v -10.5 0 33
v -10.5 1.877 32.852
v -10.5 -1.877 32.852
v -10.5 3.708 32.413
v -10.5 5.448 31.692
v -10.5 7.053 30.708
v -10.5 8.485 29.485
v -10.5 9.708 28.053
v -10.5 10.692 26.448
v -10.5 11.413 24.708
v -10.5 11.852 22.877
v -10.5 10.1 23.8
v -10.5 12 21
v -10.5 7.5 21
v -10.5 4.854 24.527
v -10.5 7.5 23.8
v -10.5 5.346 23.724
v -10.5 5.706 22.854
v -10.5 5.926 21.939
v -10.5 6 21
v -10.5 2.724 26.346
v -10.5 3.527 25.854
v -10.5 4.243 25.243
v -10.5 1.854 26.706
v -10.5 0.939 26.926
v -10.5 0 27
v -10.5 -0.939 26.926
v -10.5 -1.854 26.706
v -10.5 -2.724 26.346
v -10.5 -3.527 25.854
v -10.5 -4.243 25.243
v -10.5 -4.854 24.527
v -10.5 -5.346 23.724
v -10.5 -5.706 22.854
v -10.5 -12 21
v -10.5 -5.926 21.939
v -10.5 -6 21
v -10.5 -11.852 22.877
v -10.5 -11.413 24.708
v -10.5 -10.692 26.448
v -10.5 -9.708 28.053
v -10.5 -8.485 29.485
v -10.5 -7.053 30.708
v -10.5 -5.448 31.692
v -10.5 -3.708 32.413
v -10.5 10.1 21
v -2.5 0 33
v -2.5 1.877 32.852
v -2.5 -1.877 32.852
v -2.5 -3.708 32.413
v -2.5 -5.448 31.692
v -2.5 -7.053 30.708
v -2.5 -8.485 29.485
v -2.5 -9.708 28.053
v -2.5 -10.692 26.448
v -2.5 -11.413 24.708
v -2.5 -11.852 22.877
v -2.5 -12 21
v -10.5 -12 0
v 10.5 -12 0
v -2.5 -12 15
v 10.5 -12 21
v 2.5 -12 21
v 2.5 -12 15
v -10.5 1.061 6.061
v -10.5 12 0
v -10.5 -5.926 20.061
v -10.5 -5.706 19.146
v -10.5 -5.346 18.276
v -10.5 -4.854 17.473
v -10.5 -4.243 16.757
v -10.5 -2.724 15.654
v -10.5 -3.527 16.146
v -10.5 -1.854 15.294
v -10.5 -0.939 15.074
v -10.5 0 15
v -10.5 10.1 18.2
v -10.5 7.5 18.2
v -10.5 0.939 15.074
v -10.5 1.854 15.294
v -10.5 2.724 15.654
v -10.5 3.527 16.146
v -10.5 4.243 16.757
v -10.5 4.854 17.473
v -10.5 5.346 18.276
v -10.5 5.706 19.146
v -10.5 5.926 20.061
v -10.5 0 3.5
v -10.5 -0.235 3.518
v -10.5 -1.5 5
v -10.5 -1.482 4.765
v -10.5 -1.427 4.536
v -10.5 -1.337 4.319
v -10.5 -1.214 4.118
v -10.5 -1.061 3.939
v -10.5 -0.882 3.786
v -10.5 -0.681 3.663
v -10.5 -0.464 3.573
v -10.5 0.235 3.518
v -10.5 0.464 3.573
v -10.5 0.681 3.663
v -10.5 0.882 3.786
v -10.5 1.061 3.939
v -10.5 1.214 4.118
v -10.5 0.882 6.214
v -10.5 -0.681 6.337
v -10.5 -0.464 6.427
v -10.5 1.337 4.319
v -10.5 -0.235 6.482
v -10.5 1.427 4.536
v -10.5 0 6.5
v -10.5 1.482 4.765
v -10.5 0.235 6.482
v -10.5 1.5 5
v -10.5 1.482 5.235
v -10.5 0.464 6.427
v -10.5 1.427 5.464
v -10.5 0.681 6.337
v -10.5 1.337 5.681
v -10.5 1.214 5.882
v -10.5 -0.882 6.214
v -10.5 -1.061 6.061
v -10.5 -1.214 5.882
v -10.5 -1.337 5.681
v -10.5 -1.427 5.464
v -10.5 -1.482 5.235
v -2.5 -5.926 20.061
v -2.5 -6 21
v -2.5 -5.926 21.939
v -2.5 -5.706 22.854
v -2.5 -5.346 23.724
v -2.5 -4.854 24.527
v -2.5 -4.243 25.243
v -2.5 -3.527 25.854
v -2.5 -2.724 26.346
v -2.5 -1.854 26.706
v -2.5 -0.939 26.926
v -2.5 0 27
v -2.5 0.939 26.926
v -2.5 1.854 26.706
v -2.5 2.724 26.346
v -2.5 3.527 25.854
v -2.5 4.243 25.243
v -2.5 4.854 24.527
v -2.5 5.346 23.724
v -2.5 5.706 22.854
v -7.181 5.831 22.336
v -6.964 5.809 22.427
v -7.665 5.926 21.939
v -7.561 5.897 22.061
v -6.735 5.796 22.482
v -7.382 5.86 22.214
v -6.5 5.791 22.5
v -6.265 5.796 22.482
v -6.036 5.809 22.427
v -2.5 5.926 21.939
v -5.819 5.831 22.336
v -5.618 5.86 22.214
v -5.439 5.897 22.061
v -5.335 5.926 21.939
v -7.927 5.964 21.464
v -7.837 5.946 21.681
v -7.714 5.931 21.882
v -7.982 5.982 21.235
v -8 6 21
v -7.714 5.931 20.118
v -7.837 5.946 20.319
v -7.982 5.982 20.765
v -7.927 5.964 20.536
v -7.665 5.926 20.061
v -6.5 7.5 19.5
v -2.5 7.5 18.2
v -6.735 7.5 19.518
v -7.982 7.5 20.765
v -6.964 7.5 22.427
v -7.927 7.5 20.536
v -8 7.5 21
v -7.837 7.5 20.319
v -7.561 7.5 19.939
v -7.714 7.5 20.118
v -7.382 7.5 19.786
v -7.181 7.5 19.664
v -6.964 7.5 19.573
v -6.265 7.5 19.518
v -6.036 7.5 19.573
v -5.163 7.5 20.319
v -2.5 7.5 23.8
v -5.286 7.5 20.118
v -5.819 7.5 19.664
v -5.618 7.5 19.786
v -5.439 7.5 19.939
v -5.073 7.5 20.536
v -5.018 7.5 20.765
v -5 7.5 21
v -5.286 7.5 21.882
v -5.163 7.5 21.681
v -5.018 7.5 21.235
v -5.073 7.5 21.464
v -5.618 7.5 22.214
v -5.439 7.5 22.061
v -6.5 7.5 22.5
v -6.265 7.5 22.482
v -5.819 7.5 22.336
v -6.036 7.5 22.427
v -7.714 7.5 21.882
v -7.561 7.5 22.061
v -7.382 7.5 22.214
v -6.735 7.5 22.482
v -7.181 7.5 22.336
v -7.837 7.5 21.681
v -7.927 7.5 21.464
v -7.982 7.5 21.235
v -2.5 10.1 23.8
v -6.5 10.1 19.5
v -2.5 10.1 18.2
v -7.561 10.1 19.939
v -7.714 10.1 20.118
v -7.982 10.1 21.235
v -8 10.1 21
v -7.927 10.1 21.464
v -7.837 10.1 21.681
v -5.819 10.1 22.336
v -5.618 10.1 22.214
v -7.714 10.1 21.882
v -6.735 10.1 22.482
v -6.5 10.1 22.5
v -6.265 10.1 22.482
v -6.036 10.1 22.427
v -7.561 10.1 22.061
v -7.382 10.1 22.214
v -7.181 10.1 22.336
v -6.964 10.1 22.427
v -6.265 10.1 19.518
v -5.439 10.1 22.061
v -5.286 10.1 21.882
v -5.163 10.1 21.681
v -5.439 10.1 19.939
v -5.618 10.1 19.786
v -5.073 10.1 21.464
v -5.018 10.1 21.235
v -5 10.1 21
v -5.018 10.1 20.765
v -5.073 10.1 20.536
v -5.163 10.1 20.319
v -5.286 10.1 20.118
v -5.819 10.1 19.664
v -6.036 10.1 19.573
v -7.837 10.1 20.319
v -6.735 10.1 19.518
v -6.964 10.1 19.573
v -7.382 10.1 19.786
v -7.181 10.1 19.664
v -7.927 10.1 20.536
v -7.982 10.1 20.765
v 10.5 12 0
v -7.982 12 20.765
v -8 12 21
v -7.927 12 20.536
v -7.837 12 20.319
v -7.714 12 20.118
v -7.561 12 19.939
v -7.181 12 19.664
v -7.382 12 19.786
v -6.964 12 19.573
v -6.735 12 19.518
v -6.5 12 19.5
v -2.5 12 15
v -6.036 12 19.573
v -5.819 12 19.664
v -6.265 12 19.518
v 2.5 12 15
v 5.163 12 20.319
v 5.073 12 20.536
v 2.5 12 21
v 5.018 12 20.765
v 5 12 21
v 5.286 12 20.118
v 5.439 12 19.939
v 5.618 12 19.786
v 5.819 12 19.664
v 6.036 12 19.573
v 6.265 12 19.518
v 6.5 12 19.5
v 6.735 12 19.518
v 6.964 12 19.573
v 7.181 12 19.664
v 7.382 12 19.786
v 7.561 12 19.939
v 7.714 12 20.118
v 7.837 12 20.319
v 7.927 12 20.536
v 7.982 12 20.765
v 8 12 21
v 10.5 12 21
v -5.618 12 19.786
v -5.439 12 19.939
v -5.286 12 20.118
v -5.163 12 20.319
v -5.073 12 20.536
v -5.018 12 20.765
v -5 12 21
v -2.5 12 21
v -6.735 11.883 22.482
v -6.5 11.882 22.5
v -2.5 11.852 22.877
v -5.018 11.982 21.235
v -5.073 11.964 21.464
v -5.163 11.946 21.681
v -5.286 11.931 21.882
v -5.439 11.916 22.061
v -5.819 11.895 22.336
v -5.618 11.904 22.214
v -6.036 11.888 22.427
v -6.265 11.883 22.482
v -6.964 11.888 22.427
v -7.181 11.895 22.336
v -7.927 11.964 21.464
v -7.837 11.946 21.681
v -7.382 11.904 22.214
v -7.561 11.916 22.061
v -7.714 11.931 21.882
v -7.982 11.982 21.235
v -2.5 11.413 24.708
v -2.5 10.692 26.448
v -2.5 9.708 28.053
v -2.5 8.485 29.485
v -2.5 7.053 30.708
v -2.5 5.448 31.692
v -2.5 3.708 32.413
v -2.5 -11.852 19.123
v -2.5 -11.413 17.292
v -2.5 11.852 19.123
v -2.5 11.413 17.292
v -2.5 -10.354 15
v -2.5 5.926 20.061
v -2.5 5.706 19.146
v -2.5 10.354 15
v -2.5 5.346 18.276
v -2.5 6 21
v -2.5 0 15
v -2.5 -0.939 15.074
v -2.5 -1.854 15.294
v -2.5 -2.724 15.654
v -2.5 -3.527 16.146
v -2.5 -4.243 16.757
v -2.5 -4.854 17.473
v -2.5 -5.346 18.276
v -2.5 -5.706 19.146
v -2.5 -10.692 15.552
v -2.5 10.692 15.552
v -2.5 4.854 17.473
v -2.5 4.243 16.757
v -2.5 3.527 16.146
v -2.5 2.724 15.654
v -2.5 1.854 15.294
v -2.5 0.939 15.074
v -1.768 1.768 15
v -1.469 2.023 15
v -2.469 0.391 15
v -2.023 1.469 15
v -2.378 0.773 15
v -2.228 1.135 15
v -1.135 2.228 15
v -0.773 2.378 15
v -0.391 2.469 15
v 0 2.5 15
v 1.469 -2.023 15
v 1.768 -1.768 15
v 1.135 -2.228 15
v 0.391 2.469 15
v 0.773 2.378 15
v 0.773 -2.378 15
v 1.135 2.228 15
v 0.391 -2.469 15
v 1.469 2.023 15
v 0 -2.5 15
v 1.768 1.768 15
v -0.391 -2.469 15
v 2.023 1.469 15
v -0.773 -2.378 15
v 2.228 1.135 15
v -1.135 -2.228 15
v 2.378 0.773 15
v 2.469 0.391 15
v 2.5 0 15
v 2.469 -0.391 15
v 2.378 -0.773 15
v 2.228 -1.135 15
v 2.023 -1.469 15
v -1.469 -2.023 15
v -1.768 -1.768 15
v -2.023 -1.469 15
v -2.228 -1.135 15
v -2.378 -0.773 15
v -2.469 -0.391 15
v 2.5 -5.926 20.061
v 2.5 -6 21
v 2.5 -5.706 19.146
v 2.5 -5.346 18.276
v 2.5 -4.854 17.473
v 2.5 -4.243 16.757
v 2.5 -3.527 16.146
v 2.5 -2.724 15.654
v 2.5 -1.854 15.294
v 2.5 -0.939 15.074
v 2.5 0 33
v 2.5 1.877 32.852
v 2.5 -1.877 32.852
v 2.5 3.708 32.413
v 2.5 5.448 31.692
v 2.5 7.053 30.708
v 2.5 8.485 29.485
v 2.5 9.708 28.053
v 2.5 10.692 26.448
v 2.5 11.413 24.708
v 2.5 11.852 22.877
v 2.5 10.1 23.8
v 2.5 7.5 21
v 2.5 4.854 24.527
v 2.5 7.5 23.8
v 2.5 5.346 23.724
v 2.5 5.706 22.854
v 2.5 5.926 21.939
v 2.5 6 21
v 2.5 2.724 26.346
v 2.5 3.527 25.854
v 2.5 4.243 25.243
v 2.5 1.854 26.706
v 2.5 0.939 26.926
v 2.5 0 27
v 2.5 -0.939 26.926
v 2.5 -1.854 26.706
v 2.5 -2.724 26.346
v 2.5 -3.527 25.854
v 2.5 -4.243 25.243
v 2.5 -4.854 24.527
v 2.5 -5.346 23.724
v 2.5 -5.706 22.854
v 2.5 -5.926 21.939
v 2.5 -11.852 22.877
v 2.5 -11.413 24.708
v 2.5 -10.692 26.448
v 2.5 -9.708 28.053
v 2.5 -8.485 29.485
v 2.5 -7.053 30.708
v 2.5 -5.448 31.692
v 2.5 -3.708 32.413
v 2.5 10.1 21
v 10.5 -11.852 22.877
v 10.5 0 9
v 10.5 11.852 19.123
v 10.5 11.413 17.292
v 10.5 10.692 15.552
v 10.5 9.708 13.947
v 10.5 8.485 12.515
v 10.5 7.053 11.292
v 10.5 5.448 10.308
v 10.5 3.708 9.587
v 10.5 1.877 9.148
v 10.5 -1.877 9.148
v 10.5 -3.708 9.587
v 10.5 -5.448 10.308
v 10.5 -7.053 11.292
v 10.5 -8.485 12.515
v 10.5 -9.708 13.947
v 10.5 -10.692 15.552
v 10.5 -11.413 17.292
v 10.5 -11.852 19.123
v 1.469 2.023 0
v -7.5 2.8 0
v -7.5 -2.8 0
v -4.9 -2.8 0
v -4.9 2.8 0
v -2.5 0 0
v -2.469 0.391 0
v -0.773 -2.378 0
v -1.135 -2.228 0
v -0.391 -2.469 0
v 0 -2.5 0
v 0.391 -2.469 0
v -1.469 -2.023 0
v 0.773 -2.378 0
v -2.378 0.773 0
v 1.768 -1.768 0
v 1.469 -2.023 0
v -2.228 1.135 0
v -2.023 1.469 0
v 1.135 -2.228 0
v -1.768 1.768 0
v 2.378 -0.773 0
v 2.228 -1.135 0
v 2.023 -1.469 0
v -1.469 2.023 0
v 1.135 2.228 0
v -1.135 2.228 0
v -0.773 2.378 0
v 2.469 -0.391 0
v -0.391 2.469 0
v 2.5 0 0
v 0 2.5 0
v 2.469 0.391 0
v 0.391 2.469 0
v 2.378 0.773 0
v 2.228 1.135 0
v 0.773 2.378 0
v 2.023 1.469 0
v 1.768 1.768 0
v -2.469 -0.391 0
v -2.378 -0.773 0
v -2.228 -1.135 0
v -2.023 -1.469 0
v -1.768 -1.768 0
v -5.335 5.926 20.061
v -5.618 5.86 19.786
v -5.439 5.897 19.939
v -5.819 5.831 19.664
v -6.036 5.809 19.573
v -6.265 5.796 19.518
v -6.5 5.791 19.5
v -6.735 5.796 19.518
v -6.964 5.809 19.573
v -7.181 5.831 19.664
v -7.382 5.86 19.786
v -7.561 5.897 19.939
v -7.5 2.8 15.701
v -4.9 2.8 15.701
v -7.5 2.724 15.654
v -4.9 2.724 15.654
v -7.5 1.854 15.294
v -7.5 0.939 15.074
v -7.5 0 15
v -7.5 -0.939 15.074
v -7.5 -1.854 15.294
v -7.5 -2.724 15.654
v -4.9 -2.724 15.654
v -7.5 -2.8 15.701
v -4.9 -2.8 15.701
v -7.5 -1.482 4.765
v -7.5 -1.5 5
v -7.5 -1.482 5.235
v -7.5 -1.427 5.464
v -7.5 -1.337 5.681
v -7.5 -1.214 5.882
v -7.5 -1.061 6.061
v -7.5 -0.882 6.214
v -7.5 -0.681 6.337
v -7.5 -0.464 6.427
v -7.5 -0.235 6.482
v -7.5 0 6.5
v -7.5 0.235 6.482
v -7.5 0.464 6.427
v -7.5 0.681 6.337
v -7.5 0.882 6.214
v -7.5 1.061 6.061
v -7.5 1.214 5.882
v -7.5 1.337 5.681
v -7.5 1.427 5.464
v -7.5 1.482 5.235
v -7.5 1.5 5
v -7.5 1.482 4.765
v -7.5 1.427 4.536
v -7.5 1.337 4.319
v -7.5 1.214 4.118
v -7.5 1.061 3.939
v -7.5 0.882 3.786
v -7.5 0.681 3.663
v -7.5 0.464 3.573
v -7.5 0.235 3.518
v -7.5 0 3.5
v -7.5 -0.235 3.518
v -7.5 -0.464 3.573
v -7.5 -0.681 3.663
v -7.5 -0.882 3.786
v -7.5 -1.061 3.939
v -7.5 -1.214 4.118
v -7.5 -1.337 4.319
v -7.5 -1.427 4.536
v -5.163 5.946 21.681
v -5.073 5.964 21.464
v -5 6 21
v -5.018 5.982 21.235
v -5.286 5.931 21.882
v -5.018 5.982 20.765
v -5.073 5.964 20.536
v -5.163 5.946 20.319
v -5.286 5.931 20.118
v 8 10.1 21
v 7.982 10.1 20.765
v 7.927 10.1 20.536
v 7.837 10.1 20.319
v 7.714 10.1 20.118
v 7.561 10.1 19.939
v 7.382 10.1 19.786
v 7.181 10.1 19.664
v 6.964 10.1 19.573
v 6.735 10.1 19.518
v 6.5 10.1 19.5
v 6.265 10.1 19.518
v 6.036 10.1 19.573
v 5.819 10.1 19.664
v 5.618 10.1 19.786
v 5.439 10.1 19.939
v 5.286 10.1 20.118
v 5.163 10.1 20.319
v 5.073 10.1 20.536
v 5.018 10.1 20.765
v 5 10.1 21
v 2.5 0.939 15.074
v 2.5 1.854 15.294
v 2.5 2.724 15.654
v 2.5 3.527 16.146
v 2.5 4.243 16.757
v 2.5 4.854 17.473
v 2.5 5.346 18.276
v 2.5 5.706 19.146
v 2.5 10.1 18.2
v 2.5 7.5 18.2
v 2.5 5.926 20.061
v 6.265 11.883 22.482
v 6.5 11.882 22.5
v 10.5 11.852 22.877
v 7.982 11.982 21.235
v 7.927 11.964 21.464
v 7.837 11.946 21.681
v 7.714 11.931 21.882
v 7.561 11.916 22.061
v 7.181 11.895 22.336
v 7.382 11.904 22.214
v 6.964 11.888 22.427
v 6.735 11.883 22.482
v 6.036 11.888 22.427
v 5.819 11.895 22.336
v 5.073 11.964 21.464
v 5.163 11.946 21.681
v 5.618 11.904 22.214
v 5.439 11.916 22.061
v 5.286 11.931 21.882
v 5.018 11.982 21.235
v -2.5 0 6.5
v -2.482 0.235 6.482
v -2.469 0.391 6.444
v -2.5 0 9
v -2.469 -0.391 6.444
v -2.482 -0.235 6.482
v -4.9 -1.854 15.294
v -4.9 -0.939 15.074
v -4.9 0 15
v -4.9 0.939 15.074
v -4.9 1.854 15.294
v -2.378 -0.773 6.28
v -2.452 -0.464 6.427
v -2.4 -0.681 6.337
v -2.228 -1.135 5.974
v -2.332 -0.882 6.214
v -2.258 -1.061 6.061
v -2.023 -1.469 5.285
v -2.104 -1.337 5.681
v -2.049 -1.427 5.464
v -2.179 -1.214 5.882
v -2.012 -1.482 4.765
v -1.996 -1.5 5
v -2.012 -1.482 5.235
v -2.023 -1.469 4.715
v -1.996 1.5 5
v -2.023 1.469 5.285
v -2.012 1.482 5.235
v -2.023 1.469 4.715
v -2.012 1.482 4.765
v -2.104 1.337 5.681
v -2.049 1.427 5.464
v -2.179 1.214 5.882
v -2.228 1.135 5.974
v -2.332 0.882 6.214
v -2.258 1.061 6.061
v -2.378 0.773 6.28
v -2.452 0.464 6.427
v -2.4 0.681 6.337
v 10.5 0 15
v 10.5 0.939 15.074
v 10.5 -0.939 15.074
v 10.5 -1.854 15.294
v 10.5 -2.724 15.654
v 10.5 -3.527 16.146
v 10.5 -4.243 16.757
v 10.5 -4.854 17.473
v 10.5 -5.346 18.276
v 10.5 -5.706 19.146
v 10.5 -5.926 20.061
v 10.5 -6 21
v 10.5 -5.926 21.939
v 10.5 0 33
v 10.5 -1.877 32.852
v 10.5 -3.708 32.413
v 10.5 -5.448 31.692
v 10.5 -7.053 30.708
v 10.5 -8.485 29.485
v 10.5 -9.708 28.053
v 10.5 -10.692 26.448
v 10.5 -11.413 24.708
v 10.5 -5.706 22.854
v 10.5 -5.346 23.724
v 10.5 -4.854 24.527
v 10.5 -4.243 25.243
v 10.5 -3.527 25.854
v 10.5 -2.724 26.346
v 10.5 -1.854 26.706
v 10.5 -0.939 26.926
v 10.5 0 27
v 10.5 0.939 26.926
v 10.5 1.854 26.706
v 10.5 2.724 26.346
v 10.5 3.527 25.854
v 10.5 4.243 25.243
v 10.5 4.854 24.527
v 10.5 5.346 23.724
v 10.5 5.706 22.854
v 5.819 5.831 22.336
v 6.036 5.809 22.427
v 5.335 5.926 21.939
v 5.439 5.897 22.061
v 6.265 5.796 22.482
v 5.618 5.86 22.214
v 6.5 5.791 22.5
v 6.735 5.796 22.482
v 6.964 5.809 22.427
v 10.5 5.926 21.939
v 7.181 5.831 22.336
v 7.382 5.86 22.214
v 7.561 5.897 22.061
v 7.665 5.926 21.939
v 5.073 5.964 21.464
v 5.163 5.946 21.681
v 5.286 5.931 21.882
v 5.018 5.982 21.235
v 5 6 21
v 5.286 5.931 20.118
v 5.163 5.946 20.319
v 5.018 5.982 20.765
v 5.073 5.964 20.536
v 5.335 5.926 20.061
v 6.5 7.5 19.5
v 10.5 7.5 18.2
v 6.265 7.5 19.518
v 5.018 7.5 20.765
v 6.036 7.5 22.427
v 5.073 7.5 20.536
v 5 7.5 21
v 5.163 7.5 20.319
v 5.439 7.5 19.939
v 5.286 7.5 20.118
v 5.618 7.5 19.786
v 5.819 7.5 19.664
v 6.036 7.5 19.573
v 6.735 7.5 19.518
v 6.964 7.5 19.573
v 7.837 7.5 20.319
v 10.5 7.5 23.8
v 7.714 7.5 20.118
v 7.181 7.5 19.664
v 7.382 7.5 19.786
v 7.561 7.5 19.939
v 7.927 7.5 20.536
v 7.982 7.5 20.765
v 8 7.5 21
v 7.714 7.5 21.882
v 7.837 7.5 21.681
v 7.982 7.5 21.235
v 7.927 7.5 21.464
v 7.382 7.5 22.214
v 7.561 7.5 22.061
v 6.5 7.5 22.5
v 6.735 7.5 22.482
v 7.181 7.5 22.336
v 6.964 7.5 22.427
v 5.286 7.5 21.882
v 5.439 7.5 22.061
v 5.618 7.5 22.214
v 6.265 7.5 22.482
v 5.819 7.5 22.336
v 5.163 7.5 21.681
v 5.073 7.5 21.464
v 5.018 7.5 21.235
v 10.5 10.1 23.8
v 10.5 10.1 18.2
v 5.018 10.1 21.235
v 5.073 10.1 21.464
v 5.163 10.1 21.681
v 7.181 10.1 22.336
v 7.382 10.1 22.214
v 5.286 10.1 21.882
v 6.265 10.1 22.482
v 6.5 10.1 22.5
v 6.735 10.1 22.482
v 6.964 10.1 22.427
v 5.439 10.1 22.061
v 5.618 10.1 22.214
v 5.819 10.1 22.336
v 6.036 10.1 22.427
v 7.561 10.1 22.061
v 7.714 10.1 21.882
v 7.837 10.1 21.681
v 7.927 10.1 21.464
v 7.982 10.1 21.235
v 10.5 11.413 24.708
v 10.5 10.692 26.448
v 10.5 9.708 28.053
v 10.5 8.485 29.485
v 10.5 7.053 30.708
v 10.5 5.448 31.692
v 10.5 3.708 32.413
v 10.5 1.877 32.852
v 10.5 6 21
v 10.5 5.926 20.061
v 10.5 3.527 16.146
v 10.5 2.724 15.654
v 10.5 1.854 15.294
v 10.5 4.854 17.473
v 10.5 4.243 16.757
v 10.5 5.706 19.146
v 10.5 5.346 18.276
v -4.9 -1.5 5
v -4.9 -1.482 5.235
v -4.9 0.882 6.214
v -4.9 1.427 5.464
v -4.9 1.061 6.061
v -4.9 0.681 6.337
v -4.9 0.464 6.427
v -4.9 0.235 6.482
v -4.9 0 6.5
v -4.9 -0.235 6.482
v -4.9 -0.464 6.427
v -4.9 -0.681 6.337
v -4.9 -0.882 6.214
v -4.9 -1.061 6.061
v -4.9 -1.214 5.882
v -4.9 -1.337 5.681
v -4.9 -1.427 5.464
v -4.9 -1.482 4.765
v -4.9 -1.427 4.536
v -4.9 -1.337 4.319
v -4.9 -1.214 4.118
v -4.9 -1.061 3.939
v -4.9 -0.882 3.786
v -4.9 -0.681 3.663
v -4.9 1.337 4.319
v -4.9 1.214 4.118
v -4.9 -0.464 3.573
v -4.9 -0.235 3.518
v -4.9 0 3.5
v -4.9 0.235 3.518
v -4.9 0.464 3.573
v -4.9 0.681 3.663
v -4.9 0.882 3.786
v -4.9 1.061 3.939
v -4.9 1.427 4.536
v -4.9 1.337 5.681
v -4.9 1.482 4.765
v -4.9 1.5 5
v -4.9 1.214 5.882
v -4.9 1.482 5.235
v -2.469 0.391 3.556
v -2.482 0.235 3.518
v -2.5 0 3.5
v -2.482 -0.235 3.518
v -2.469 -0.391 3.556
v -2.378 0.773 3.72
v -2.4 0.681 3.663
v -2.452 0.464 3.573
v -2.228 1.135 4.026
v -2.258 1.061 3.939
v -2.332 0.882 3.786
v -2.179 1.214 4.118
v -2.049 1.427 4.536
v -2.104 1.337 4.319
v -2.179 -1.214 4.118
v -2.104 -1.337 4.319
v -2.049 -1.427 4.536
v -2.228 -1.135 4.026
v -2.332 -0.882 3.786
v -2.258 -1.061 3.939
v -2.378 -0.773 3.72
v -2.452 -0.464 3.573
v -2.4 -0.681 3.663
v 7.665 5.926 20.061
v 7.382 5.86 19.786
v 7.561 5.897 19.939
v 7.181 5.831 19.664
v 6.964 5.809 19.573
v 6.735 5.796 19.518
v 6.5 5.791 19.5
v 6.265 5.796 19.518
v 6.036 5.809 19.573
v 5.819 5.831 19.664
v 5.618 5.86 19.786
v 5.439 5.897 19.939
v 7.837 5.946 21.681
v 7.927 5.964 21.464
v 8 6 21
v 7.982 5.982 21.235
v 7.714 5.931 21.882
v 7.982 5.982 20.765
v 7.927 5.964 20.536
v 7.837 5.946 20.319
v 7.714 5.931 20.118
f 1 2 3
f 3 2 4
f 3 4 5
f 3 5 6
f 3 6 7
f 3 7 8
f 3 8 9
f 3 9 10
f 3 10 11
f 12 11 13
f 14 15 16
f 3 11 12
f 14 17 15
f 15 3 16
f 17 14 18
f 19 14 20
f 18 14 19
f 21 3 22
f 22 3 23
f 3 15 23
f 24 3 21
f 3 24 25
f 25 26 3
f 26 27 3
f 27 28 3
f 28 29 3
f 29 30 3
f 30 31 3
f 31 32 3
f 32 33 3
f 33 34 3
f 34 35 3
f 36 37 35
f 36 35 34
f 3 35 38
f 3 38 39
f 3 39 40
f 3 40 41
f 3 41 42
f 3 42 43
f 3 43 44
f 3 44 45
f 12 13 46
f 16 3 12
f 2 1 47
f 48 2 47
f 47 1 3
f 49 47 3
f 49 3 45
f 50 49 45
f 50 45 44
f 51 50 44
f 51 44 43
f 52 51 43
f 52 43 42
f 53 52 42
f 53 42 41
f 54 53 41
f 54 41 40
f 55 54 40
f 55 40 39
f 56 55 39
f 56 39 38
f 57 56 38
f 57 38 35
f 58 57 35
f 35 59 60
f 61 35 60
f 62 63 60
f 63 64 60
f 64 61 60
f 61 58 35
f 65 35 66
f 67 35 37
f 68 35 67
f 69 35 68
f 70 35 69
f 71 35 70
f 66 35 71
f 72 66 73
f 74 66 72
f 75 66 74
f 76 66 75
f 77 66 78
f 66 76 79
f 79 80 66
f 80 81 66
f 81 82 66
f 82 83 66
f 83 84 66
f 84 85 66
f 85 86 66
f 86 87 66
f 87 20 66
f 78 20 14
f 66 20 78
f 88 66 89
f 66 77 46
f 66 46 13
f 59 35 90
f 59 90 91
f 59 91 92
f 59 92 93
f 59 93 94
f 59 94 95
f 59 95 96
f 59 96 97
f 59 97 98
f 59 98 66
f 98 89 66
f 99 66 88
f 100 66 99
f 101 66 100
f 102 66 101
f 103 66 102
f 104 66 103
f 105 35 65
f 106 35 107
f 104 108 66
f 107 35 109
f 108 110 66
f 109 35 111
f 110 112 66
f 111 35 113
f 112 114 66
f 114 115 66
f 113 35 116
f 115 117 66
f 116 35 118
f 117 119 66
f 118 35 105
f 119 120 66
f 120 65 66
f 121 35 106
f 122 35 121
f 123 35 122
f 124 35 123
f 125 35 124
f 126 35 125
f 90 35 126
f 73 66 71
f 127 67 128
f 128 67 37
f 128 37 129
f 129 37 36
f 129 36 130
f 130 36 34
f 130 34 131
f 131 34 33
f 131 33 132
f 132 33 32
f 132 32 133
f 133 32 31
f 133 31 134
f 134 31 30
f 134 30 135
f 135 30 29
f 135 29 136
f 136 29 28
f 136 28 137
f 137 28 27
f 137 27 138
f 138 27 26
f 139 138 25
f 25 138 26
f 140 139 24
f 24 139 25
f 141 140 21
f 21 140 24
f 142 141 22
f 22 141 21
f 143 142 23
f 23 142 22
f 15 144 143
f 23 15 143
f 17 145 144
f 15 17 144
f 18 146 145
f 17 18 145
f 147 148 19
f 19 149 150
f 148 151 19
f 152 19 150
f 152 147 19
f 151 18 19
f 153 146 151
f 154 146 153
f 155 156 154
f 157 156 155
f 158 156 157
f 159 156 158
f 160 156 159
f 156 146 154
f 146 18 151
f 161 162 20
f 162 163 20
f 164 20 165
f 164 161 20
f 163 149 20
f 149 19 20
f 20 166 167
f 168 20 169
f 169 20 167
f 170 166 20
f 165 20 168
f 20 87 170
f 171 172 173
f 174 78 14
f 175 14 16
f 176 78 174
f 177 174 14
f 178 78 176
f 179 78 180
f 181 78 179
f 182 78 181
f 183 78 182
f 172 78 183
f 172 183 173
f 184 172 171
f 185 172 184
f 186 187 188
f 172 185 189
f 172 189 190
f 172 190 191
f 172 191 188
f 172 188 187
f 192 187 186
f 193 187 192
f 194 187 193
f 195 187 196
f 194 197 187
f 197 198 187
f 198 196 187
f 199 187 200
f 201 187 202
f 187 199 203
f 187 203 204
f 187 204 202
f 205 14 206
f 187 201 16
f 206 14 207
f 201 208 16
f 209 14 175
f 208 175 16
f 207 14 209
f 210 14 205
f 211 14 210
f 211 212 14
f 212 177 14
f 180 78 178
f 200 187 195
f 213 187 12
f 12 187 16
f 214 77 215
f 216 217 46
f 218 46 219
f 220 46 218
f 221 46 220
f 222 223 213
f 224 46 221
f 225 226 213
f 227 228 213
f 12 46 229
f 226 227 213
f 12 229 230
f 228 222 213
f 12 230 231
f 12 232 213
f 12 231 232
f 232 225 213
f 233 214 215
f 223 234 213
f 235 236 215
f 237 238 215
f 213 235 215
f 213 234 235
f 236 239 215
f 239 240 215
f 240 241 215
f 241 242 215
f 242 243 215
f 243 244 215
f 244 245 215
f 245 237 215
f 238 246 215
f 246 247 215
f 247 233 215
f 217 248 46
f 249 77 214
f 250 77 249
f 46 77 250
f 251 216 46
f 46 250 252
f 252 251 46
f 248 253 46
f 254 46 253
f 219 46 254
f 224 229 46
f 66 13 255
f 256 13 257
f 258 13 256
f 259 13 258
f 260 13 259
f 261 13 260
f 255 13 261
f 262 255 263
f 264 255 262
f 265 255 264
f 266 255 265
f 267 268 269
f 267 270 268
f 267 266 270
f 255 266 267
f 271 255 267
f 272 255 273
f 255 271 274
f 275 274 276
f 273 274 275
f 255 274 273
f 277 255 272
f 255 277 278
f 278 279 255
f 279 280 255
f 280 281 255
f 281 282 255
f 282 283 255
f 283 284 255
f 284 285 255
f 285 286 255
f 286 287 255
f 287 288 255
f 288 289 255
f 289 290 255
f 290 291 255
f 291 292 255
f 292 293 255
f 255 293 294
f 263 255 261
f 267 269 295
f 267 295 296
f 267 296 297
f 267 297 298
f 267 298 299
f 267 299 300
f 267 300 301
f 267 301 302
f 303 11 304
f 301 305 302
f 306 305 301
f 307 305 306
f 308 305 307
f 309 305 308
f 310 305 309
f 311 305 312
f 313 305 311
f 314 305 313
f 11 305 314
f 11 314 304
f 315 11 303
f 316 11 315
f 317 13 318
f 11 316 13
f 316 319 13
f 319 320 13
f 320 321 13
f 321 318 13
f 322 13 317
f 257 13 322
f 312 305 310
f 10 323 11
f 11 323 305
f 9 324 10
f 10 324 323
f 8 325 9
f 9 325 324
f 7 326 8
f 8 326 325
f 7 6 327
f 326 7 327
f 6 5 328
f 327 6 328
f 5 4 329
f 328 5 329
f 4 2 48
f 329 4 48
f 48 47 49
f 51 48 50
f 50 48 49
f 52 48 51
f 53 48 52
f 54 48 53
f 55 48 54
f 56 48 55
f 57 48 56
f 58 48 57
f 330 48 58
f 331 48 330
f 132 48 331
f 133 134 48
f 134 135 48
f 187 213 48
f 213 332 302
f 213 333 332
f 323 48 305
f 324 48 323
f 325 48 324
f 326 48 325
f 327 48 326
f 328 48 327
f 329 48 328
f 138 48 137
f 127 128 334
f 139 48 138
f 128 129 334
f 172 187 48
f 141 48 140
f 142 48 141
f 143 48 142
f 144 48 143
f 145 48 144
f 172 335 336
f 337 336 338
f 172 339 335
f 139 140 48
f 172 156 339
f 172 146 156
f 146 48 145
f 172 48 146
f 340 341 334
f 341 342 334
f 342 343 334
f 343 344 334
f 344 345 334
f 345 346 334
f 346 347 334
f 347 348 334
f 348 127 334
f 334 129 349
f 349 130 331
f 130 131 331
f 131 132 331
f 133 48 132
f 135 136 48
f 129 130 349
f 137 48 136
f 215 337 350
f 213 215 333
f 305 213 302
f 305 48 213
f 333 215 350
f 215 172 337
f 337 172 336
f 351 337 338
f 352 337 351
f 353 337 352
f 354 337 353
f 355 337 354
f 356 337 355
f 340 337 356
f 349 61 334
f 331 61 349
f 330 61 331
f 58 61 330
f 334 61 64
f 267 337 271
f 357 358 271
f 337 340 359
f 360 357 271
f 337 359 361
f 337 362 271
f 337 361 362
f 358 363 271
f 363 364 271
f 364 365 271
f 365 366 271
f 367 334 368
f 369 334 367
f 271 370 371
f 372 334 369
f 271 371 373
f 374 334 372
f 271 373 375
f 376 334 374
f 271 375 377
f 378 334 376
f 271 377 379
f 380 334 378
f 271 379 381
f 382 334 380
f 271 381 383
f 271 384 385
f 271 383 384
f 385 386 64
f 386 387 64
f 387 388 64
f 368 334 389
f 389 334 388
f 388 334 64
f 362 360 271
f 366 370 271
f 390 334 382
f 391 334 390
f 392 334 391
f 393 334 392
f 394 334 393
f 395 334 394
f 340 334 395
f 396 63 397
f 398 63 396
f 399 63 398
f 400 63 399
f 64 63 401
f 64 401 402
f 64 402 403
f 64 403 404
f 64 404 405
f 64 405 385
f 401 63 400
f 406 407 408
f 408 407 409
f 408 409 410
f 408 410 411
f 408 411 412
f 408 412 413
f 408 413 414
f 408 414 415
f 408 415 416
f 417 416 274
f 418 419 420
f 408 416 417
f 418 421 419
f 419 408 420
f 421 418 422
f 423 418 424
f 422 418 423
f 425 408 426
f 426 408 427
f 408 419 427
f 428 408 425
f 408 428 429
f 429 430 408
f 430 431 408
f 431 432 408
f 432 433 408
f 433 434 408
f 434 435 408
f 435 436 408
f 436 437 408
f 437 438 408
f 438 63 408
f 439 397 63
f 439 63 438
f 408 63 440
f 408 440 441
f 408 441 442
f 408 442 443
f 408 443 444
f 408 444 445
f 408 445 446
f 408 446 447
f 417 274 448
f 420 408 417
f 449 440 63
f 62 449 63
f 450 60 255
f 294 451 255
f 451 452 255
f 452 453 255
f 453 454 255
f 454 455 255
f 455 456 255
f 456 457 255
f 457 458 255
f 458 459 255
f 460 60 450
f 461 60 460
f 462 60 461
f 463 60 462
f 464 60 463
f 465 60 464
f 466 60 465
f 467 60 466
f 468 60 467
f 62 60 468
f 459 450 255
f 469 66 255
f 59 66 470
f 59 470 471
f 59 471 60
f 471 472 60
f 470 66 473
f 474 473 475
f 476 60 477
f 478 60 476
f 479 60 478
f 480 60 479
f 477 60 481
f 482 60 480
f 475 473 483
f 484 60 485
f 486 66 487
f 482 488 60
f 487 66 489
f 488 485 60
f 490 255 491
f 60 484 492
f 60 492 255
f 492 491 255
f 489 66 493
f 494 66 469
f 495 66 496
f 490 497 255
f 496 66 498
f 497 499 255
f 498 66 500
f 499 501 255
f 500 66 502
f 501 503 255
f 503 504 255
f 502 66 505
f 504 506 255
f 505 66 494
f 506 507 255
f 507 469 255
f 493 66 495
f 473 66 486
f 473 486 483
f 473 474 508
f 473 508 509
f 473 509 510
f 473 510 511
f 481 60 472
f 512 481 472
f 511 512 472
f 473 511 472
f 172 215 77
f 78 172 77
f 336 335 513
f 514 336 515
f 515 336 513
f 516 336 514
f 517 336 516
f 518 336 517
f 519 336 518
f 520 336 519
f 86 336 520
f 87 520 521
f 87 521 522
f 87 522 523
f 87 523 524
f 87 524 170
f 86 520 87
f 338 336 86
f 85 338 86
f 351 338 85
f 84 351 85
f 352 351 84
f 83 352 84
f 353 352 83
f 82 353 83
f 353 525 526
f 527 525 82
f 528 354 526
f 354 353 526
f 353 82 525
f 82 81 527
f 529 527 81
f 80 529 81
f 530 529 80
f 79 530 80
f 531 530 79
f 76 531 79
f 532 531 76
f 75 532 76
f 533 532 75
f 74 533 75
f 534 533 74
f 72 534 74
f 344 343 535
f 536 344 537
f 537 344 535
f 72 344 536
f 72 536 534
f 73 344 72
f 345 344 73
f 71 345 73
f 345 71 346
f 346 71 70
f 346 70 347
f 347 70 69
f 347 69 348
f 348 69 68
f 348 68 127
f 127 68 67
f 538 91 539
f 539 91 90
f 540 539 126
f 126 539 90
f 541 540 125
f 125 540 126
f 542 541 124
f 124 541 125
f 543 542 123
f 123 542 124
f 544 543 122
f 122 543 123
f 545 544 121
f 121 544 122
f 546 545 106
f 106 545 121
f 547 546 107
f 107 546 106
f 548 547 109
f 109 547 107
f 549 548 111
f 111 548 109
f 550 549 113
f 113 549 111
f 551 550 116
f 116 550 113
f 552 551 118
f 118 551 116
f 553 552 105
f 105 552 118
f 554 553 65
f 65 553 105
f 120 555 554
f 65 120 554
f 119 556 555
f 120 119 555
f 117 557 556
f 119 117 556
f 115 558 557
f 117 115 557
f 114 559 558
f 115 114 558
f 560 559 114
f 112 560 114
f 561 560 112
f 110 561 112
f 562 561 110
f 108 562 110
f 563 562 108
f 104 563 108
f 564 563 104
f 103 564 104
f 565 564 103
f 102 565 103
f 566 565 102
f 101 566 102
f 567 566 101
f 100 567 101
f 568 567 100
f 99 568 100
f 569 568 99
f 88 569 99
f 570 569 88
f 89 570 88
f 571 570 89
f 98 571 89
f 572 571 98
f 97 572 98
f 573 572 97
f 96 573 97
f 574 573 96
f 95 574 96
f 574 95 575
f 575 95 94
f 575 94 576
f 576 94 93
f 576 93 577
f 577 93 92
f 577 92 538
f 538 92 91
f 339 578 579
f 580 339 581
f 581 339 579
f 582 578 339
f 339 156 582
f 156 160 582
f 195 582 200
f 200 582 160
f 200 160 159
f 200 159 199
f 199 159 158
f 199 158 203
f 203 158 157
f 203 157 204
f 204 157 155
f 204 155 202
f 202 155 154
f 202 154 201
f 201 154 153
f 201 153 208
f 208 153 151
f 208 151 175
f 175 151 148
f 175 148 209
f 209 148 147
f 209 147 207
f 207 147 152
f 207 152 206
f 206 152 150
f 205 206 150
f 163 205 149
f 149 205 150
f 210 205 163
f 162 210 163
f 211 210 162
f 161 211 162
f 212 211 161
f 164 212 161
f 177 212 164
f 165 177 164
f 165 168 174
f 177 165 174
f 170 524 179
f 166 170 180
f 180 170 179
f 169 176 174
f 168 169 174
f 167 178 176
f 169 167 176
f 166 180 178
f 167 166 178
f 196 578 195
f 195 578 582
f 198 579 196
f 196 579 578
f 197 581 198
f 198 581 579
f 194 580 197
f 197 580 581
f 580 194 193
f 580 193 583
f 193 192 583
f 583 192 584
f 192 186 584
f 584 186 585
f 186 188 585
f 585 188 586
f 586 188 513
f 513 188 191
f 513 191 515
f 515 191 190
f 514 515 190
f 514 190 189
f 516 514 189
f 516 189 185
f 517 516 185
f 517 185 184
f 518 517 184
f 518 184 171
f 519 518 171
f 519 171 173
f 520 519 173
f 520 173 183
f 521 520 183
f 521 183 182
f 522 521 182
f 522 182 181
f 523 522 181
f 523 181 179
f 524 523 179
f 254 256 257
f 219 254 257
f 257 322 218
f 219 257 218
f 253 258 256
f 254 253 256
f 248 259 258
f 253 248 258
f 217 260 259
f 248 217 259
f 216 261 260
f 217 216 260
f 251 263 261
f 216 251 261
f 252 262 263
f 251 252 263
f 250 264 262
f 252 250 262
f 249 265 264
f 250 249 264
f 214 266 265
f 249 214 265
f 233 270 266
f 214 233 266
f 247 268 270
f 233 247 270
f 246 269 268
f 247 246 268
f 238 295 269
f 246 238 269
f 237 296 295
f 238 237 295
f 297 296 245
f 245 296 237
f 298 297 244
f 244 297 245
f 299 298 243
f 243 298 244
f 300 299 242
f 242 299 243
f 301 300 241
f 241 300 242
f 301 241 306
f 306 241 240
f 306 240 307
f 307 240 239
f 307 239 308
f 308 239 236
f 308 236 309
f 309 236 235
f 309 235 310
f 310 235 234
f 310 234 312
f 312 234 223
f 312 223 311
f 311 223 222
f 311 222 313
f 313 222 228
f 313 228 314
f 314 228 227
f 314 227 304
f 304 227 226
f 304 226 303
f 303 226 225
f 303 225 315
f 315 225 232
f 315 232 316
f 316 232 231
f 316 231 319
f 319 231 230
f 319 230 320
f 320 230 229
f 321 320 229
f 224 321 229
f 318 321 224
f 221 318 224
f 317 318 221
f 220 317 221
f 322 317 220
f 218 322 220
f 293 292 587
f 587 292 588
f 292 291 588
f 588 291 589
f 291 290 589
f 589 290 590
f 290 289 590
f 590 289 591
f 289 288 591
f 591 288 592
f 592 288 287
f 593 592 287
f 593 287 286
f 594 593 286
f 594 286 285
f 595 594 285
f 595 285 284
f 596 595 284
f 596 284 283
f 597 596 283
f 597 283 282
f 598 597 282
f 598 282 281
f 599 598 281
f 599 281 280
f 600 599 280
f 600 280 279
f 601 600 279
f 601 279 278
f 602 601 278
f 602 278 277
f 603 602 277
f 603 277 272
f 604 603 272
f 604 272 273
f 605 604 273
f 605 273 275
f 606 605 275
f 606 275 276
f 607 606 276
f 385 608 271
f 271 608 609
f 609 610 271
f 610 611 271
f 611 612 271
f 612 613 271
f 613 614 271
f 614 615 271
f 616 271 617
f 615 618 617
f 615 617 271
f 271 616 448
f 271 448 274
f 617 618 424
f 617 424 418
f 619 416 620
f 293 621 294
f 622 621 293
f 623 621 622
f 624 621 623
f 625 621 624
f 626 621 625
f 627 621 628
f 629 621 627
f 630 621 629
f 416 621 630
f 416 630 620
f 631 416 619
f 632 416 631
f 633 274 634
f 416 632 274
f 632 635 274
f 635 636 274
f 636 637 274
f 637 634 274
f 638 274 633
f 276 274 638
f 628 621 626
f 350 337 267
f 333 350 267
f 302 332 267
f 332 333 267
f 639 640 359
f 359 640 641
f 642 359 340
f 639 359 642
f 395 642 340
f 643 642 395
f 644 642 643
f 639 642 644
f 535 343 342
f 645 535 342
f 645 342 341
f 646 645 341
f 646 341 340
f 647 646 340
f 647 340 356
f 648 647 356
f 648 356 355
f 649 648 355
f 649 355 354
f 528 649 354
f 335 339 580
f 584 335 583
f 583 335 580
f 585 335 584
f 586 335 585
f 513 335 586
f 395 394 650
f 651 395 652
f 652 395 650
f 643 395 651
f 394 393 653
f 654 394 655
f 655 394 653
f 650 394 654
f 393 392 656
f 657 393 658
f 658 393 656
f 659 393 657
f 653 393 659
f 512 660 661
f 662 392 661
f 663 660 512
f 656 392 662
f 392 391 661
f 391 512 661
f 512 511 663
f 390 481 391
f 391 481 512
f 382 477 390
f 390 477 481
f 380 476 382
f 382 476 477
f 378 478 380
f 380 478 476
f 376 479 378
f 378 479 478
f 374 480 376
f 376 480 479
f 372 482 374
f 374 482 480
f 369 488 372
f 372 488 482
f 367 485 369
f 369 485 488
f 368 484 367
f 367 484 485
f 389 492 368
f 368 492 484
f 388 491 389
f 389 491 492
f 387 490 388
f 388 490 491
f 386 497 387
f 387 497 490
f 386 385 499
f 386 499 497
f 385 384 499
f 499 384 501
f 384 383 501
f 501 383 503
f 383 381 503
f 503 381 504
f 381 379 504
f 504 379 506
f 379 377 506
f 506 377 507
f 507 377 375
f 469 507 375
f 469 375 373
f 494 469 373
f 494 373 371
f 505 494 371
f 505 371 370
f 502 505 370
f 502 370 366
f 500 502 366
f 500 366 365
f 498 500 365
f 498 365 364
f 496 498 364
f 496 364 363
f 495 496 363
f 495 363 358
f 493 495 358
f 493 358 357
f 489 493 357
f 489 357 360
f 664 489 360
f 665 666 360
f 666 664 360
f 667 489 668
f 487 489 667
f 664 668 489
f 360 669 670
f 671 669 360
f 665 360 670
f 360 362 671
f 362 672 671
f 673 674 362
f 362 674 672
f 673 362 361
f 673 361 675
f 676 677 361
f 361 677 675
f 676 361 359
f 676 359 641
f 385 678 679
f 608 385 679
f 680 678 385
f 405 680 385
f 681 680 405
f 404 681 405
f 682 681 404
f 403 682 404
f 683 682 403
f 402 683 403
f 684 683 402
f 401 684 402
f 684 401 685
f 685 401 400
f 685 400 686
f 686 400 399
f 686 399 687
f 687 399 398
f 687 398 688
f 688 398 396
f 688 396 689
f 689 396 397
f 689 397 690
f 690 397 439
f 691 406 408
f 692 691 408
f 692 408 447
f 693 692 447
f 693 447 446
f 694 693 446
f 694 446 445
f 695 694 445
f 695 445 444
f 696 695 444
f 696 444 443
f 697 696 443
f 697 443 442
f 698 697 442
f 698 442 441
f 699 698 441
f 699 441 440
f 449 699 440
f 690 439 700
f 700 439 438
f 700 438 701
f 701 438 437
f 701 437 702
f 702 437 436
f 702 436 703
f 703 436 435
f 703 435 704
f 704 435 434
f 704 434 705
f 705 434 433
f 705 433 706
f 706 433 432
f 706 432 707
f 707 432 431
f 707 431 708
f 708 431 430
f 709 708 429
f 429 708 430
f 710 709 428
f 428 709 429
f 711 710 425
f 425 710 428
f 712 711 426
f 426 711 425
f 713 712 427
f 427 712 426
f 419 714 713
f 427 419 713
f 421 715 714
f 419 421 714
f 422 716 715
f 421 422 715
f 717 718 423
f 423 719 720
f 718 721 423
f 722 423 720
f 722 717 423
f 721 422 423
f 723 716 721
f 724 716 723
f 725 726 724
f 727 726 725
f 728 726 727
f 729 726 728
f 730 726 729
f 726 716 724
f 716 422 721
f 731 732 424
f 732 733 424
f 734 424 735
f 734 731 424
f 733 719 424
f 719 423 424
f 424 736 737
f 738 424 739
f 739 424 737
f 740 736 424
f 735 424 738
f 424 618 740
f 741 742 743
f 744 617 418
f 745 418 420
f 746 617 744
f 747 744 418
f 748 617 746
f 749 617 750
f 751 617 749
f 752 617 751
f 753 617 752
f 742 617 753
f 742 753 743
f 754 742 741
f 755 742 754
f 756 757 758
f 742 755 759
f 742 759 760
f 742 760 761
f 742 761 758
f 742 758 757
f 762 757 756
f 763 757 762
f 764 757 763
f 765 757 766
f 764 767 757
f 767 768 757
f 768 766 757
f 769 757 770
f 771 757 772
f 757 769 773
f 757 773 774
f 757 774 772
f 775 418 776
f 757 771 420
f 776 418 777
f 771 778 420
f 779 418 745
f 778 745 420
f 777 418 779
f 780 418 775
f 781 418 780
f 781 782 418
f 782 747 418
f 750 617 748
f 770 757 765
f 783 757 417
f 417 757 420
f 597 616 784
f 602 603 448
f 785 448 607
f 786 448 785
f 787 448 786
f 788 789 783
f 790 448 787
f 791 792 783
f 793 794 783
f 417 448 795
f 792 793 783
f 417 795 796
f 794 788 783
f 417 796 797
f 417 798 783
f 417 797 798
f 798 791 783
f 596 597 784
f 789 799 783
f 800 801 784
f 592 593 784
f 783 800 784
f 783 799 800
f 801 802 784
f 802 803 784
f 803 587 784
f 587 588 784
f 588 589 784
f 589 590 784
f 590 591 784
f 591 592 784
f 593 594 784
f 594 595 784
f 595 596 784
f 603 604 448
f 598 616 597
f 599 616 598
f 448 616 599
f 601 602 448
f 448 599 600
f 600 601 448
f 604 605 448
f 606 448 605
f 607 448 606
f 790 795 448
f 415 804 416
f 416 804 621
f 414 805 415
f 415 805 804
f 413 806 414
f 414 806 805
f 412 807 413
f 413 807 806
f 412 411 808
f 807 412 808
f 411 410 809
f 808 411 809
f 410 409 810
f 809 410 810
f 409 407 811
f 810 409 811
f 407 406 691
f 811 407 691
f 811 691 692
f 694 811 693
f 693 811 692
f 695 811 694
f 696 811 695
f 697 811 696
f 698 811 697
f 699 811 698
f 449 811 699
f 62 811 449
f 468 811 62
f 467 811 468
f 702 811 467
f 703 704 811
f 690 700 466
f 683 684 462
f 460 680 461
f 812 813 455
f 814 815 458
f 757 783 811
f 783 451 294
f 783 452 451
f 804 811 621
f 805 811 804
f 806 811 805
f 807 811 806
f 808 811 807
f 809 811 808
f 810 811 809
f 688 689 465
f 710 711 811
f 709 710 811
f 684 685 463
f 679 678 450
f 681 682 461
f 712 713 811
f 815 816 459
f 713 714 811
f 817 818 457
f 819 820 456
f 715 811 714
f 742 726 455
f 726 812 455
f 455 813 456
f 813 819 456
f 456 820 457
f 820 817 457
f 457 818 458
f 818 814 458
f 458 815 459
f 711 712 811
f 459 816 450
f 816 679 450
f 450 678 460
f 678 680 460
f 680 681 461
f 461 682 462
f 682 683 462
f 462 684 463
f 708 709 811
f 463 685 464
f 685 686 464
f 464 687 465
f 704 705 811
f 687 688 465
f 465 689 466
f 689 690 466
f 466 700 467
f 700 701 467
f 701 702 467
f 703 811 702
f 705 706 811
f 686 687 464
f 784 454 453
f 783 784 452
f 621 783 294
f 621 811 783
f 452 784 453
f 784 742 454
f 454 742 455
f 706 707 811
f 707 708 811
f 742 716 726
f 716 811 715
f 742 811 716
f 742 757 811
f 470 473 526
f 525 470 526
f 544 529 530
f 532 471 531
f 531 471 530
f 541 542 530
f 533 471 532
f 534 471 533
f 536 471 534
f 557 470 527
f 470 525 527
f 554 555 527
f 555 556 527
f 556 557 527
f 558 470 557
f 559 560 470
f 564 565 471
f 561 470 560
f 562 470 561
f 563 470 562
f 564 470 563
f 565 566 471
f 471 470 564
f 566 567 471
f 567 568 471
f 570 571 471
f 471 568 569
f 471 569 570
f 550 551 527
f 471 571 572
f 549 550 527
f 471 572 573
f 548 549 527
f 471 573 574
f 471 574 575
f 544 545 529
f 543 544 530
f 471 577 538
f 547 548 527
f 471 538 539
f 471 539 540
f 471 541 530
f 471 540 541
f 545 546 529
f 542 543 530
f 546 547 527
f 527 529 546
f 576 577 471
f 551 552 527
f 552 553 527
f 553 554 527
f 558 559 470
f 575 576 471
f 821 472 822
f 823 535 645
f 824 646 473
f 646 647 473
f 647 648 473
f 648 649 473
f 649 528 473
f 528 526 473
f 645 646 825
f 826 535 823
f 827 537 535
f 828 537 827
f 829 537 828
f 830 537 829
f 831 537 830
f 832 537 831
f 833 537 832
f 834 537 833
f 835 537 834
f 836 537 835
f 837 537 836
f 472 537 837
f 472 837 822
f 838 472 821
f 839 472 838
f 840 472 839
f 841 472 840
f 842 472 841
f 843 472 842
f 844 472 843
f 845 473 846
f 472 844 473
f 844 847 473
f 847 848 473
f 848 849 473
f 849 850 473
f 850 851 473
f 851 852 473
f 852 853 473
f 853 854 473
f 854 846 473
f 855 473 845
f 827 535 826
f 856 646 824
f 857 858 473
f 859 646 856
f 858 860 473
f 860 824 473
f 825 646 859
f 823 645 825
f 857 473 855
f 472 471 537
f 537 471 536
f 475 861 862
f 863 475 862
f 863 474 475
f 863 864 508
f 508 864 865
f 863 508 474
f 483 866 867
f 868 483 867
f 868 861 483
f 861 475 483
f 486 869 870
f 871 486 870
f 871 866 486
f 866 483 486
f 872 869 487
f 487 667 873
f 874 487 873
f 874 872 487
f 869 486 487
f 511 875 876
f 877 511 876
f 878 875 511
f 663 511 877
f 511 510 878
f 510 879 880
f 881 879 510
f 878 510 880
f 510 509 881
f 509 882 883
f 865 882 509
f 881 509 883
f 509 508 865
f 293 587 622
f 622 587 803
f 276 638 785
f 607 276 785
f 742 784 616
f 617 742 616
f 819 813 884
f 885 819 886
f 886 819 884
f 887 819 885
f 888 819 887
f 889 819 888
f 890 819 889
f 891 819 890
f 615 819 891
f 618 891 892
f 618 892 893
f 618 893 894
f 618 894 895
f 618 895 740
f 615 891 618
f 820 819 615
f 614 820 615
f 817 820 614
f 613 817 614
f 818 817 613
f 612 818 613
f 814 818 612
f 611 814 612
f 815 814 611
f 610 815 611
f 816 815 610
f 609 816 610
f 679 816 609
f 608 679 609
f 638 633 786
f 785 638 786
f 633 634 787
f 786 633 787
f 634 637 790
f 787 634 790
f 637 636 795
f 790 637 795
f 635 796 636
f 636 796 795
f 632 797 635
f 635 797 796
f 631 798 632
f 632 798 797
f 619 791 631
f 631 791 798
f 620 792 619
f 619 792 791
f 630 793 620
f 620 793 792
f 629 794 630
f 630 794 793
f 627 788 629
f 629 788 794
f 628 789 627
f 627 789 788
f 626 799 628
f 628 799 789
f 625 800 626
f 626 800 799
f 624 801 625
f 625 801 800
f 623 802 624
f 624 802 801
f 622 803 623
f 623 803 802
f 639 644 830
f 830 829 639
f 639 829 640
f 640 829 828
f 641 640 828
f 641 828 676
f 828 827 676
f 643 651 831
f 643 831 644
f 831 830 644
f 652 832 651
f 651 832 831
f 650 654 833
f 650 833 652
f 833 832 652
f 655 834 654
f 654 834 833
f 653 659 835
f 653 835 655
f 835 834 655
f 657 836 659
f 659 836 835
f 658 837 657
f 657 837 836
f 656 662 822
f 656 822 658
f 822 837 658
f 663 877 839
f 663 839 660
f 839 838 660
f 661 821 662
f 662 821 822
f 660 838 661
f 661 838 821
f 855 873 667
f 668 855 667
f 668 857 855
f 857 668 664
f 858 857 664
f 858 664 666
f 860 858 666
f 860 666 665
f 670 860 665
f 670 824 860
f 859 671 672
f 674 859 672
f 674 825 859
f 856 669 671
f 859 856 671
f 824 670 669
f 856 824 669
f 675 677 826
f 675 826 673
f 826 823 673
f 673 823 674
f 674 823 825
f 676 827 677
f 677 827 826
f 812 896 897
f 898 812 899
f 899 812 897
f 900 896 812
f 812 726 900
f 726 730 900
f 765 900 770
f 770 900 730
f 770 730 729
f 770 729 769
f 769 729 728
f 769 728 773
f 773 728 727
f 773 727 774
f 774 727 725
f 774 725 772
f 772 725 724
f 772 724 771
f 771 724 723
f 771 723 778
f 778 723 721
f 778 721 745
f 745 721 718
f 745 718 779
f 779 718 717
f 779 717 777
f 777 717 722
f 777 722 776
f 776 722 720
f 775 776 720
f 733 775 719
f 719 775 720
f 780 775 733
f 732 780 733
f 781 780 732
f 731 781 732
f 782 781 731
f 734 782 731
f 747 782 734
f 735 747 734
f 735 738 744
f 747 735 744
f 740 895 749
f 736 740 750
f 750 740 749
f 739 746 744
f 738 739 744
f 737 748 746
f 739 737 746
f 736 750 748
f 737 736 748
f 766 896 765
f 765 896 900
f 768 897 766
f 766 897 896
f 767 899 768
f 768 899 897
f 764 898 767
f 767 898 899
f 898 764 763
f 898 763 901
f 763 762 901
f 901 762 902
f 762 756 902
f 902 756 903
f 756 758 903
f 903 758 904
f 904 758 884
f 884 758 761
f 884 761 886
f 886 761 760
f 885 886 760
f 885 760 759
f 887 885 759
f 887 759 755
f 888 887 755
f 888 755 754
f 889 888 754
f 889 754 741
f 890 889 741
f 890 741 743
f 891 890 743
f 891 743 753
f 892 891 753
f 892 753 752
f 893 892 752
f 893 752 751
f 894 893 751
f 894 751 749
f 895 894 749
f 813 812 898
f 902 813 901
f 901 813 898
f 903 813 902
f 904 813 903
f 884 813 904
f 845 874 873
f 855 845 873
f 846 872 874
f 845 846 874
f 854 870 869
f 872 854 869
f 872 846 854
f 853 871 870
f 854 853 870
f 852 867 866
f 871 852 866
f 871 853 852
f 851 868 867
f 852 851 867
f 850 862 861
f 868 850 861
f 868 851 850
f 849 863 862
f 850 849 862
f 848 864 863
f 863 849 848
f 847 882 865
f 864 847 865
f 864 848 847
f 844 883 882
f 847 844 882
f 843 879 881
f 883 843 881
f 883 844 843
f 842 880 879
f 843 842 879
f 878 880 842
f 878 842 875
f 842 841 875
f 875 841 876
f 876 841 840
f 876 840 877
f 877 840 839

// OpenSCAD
$fn = 40; //change this to make the edges more round! Rendering will become slower.

lhIR = 6; //this is where you define the radius of your laser module!
lhOR = lhIR+6; 
lhH = 8;

shIR = 2.5;
shXS = shIR+2*lhH;
shYS = 2*lhOR;
shZS = 15;

nutY = 2.6;
nutZ = 5.6;

module screw(){
	rotate([-90,0,0])
	cylinder(h=25, r=1.5);
}

//breit: 5.4mm
//hoch: 2.3mm
module nut(){
	scale([25, nutY, nutZ])
	cube();
}

module laserHolder(){
	difference(){
		union(){
			rotate([0,90,0])
			cylinder(h=lhH, r=lhOR);
			translate([0,-lhOR,-(shZS+lhIR)])
			scale([lhH,2*lhOR,shZS+lhIR])
			cube(1);
		}
		rotate([0,90,0])
		translate([0,0,-1])
		cylinder(h=lhH+2, r=lhIR);
		translate([-2,(lhIR+lhOR)/2-1.5,-nutZ/2])
		nut();
		translate([lhH/2,0,0])
		screw();
	}
}

module stepperHolder(){
	difference(){
		translate([-shXS/2, -shYS/2])
		scale([shXS, shYS, shZS])
		cube(1);
		translate([0,0,-1])
		cylinder(h=shZS+2, r=shIR);	
	}
}

module complete(){
	difference(){
		union(){
			translate([0,0,lhIR+shZS]){
				translate([-lhH-shIR,0,0])
				laserHolder();
				translate([shIR,0,0])
				laserHolder();
			}
			stepperHolder();
		}
		rotate([0,0,90])
		translate([0,0,5])
		screw();
		rotate([90,90,0])
		translate([-3*nutZ,-7.5,-nutZ/2])
		nut();
	}
}

//laserHolder();
//stepperHolder();
complete();
